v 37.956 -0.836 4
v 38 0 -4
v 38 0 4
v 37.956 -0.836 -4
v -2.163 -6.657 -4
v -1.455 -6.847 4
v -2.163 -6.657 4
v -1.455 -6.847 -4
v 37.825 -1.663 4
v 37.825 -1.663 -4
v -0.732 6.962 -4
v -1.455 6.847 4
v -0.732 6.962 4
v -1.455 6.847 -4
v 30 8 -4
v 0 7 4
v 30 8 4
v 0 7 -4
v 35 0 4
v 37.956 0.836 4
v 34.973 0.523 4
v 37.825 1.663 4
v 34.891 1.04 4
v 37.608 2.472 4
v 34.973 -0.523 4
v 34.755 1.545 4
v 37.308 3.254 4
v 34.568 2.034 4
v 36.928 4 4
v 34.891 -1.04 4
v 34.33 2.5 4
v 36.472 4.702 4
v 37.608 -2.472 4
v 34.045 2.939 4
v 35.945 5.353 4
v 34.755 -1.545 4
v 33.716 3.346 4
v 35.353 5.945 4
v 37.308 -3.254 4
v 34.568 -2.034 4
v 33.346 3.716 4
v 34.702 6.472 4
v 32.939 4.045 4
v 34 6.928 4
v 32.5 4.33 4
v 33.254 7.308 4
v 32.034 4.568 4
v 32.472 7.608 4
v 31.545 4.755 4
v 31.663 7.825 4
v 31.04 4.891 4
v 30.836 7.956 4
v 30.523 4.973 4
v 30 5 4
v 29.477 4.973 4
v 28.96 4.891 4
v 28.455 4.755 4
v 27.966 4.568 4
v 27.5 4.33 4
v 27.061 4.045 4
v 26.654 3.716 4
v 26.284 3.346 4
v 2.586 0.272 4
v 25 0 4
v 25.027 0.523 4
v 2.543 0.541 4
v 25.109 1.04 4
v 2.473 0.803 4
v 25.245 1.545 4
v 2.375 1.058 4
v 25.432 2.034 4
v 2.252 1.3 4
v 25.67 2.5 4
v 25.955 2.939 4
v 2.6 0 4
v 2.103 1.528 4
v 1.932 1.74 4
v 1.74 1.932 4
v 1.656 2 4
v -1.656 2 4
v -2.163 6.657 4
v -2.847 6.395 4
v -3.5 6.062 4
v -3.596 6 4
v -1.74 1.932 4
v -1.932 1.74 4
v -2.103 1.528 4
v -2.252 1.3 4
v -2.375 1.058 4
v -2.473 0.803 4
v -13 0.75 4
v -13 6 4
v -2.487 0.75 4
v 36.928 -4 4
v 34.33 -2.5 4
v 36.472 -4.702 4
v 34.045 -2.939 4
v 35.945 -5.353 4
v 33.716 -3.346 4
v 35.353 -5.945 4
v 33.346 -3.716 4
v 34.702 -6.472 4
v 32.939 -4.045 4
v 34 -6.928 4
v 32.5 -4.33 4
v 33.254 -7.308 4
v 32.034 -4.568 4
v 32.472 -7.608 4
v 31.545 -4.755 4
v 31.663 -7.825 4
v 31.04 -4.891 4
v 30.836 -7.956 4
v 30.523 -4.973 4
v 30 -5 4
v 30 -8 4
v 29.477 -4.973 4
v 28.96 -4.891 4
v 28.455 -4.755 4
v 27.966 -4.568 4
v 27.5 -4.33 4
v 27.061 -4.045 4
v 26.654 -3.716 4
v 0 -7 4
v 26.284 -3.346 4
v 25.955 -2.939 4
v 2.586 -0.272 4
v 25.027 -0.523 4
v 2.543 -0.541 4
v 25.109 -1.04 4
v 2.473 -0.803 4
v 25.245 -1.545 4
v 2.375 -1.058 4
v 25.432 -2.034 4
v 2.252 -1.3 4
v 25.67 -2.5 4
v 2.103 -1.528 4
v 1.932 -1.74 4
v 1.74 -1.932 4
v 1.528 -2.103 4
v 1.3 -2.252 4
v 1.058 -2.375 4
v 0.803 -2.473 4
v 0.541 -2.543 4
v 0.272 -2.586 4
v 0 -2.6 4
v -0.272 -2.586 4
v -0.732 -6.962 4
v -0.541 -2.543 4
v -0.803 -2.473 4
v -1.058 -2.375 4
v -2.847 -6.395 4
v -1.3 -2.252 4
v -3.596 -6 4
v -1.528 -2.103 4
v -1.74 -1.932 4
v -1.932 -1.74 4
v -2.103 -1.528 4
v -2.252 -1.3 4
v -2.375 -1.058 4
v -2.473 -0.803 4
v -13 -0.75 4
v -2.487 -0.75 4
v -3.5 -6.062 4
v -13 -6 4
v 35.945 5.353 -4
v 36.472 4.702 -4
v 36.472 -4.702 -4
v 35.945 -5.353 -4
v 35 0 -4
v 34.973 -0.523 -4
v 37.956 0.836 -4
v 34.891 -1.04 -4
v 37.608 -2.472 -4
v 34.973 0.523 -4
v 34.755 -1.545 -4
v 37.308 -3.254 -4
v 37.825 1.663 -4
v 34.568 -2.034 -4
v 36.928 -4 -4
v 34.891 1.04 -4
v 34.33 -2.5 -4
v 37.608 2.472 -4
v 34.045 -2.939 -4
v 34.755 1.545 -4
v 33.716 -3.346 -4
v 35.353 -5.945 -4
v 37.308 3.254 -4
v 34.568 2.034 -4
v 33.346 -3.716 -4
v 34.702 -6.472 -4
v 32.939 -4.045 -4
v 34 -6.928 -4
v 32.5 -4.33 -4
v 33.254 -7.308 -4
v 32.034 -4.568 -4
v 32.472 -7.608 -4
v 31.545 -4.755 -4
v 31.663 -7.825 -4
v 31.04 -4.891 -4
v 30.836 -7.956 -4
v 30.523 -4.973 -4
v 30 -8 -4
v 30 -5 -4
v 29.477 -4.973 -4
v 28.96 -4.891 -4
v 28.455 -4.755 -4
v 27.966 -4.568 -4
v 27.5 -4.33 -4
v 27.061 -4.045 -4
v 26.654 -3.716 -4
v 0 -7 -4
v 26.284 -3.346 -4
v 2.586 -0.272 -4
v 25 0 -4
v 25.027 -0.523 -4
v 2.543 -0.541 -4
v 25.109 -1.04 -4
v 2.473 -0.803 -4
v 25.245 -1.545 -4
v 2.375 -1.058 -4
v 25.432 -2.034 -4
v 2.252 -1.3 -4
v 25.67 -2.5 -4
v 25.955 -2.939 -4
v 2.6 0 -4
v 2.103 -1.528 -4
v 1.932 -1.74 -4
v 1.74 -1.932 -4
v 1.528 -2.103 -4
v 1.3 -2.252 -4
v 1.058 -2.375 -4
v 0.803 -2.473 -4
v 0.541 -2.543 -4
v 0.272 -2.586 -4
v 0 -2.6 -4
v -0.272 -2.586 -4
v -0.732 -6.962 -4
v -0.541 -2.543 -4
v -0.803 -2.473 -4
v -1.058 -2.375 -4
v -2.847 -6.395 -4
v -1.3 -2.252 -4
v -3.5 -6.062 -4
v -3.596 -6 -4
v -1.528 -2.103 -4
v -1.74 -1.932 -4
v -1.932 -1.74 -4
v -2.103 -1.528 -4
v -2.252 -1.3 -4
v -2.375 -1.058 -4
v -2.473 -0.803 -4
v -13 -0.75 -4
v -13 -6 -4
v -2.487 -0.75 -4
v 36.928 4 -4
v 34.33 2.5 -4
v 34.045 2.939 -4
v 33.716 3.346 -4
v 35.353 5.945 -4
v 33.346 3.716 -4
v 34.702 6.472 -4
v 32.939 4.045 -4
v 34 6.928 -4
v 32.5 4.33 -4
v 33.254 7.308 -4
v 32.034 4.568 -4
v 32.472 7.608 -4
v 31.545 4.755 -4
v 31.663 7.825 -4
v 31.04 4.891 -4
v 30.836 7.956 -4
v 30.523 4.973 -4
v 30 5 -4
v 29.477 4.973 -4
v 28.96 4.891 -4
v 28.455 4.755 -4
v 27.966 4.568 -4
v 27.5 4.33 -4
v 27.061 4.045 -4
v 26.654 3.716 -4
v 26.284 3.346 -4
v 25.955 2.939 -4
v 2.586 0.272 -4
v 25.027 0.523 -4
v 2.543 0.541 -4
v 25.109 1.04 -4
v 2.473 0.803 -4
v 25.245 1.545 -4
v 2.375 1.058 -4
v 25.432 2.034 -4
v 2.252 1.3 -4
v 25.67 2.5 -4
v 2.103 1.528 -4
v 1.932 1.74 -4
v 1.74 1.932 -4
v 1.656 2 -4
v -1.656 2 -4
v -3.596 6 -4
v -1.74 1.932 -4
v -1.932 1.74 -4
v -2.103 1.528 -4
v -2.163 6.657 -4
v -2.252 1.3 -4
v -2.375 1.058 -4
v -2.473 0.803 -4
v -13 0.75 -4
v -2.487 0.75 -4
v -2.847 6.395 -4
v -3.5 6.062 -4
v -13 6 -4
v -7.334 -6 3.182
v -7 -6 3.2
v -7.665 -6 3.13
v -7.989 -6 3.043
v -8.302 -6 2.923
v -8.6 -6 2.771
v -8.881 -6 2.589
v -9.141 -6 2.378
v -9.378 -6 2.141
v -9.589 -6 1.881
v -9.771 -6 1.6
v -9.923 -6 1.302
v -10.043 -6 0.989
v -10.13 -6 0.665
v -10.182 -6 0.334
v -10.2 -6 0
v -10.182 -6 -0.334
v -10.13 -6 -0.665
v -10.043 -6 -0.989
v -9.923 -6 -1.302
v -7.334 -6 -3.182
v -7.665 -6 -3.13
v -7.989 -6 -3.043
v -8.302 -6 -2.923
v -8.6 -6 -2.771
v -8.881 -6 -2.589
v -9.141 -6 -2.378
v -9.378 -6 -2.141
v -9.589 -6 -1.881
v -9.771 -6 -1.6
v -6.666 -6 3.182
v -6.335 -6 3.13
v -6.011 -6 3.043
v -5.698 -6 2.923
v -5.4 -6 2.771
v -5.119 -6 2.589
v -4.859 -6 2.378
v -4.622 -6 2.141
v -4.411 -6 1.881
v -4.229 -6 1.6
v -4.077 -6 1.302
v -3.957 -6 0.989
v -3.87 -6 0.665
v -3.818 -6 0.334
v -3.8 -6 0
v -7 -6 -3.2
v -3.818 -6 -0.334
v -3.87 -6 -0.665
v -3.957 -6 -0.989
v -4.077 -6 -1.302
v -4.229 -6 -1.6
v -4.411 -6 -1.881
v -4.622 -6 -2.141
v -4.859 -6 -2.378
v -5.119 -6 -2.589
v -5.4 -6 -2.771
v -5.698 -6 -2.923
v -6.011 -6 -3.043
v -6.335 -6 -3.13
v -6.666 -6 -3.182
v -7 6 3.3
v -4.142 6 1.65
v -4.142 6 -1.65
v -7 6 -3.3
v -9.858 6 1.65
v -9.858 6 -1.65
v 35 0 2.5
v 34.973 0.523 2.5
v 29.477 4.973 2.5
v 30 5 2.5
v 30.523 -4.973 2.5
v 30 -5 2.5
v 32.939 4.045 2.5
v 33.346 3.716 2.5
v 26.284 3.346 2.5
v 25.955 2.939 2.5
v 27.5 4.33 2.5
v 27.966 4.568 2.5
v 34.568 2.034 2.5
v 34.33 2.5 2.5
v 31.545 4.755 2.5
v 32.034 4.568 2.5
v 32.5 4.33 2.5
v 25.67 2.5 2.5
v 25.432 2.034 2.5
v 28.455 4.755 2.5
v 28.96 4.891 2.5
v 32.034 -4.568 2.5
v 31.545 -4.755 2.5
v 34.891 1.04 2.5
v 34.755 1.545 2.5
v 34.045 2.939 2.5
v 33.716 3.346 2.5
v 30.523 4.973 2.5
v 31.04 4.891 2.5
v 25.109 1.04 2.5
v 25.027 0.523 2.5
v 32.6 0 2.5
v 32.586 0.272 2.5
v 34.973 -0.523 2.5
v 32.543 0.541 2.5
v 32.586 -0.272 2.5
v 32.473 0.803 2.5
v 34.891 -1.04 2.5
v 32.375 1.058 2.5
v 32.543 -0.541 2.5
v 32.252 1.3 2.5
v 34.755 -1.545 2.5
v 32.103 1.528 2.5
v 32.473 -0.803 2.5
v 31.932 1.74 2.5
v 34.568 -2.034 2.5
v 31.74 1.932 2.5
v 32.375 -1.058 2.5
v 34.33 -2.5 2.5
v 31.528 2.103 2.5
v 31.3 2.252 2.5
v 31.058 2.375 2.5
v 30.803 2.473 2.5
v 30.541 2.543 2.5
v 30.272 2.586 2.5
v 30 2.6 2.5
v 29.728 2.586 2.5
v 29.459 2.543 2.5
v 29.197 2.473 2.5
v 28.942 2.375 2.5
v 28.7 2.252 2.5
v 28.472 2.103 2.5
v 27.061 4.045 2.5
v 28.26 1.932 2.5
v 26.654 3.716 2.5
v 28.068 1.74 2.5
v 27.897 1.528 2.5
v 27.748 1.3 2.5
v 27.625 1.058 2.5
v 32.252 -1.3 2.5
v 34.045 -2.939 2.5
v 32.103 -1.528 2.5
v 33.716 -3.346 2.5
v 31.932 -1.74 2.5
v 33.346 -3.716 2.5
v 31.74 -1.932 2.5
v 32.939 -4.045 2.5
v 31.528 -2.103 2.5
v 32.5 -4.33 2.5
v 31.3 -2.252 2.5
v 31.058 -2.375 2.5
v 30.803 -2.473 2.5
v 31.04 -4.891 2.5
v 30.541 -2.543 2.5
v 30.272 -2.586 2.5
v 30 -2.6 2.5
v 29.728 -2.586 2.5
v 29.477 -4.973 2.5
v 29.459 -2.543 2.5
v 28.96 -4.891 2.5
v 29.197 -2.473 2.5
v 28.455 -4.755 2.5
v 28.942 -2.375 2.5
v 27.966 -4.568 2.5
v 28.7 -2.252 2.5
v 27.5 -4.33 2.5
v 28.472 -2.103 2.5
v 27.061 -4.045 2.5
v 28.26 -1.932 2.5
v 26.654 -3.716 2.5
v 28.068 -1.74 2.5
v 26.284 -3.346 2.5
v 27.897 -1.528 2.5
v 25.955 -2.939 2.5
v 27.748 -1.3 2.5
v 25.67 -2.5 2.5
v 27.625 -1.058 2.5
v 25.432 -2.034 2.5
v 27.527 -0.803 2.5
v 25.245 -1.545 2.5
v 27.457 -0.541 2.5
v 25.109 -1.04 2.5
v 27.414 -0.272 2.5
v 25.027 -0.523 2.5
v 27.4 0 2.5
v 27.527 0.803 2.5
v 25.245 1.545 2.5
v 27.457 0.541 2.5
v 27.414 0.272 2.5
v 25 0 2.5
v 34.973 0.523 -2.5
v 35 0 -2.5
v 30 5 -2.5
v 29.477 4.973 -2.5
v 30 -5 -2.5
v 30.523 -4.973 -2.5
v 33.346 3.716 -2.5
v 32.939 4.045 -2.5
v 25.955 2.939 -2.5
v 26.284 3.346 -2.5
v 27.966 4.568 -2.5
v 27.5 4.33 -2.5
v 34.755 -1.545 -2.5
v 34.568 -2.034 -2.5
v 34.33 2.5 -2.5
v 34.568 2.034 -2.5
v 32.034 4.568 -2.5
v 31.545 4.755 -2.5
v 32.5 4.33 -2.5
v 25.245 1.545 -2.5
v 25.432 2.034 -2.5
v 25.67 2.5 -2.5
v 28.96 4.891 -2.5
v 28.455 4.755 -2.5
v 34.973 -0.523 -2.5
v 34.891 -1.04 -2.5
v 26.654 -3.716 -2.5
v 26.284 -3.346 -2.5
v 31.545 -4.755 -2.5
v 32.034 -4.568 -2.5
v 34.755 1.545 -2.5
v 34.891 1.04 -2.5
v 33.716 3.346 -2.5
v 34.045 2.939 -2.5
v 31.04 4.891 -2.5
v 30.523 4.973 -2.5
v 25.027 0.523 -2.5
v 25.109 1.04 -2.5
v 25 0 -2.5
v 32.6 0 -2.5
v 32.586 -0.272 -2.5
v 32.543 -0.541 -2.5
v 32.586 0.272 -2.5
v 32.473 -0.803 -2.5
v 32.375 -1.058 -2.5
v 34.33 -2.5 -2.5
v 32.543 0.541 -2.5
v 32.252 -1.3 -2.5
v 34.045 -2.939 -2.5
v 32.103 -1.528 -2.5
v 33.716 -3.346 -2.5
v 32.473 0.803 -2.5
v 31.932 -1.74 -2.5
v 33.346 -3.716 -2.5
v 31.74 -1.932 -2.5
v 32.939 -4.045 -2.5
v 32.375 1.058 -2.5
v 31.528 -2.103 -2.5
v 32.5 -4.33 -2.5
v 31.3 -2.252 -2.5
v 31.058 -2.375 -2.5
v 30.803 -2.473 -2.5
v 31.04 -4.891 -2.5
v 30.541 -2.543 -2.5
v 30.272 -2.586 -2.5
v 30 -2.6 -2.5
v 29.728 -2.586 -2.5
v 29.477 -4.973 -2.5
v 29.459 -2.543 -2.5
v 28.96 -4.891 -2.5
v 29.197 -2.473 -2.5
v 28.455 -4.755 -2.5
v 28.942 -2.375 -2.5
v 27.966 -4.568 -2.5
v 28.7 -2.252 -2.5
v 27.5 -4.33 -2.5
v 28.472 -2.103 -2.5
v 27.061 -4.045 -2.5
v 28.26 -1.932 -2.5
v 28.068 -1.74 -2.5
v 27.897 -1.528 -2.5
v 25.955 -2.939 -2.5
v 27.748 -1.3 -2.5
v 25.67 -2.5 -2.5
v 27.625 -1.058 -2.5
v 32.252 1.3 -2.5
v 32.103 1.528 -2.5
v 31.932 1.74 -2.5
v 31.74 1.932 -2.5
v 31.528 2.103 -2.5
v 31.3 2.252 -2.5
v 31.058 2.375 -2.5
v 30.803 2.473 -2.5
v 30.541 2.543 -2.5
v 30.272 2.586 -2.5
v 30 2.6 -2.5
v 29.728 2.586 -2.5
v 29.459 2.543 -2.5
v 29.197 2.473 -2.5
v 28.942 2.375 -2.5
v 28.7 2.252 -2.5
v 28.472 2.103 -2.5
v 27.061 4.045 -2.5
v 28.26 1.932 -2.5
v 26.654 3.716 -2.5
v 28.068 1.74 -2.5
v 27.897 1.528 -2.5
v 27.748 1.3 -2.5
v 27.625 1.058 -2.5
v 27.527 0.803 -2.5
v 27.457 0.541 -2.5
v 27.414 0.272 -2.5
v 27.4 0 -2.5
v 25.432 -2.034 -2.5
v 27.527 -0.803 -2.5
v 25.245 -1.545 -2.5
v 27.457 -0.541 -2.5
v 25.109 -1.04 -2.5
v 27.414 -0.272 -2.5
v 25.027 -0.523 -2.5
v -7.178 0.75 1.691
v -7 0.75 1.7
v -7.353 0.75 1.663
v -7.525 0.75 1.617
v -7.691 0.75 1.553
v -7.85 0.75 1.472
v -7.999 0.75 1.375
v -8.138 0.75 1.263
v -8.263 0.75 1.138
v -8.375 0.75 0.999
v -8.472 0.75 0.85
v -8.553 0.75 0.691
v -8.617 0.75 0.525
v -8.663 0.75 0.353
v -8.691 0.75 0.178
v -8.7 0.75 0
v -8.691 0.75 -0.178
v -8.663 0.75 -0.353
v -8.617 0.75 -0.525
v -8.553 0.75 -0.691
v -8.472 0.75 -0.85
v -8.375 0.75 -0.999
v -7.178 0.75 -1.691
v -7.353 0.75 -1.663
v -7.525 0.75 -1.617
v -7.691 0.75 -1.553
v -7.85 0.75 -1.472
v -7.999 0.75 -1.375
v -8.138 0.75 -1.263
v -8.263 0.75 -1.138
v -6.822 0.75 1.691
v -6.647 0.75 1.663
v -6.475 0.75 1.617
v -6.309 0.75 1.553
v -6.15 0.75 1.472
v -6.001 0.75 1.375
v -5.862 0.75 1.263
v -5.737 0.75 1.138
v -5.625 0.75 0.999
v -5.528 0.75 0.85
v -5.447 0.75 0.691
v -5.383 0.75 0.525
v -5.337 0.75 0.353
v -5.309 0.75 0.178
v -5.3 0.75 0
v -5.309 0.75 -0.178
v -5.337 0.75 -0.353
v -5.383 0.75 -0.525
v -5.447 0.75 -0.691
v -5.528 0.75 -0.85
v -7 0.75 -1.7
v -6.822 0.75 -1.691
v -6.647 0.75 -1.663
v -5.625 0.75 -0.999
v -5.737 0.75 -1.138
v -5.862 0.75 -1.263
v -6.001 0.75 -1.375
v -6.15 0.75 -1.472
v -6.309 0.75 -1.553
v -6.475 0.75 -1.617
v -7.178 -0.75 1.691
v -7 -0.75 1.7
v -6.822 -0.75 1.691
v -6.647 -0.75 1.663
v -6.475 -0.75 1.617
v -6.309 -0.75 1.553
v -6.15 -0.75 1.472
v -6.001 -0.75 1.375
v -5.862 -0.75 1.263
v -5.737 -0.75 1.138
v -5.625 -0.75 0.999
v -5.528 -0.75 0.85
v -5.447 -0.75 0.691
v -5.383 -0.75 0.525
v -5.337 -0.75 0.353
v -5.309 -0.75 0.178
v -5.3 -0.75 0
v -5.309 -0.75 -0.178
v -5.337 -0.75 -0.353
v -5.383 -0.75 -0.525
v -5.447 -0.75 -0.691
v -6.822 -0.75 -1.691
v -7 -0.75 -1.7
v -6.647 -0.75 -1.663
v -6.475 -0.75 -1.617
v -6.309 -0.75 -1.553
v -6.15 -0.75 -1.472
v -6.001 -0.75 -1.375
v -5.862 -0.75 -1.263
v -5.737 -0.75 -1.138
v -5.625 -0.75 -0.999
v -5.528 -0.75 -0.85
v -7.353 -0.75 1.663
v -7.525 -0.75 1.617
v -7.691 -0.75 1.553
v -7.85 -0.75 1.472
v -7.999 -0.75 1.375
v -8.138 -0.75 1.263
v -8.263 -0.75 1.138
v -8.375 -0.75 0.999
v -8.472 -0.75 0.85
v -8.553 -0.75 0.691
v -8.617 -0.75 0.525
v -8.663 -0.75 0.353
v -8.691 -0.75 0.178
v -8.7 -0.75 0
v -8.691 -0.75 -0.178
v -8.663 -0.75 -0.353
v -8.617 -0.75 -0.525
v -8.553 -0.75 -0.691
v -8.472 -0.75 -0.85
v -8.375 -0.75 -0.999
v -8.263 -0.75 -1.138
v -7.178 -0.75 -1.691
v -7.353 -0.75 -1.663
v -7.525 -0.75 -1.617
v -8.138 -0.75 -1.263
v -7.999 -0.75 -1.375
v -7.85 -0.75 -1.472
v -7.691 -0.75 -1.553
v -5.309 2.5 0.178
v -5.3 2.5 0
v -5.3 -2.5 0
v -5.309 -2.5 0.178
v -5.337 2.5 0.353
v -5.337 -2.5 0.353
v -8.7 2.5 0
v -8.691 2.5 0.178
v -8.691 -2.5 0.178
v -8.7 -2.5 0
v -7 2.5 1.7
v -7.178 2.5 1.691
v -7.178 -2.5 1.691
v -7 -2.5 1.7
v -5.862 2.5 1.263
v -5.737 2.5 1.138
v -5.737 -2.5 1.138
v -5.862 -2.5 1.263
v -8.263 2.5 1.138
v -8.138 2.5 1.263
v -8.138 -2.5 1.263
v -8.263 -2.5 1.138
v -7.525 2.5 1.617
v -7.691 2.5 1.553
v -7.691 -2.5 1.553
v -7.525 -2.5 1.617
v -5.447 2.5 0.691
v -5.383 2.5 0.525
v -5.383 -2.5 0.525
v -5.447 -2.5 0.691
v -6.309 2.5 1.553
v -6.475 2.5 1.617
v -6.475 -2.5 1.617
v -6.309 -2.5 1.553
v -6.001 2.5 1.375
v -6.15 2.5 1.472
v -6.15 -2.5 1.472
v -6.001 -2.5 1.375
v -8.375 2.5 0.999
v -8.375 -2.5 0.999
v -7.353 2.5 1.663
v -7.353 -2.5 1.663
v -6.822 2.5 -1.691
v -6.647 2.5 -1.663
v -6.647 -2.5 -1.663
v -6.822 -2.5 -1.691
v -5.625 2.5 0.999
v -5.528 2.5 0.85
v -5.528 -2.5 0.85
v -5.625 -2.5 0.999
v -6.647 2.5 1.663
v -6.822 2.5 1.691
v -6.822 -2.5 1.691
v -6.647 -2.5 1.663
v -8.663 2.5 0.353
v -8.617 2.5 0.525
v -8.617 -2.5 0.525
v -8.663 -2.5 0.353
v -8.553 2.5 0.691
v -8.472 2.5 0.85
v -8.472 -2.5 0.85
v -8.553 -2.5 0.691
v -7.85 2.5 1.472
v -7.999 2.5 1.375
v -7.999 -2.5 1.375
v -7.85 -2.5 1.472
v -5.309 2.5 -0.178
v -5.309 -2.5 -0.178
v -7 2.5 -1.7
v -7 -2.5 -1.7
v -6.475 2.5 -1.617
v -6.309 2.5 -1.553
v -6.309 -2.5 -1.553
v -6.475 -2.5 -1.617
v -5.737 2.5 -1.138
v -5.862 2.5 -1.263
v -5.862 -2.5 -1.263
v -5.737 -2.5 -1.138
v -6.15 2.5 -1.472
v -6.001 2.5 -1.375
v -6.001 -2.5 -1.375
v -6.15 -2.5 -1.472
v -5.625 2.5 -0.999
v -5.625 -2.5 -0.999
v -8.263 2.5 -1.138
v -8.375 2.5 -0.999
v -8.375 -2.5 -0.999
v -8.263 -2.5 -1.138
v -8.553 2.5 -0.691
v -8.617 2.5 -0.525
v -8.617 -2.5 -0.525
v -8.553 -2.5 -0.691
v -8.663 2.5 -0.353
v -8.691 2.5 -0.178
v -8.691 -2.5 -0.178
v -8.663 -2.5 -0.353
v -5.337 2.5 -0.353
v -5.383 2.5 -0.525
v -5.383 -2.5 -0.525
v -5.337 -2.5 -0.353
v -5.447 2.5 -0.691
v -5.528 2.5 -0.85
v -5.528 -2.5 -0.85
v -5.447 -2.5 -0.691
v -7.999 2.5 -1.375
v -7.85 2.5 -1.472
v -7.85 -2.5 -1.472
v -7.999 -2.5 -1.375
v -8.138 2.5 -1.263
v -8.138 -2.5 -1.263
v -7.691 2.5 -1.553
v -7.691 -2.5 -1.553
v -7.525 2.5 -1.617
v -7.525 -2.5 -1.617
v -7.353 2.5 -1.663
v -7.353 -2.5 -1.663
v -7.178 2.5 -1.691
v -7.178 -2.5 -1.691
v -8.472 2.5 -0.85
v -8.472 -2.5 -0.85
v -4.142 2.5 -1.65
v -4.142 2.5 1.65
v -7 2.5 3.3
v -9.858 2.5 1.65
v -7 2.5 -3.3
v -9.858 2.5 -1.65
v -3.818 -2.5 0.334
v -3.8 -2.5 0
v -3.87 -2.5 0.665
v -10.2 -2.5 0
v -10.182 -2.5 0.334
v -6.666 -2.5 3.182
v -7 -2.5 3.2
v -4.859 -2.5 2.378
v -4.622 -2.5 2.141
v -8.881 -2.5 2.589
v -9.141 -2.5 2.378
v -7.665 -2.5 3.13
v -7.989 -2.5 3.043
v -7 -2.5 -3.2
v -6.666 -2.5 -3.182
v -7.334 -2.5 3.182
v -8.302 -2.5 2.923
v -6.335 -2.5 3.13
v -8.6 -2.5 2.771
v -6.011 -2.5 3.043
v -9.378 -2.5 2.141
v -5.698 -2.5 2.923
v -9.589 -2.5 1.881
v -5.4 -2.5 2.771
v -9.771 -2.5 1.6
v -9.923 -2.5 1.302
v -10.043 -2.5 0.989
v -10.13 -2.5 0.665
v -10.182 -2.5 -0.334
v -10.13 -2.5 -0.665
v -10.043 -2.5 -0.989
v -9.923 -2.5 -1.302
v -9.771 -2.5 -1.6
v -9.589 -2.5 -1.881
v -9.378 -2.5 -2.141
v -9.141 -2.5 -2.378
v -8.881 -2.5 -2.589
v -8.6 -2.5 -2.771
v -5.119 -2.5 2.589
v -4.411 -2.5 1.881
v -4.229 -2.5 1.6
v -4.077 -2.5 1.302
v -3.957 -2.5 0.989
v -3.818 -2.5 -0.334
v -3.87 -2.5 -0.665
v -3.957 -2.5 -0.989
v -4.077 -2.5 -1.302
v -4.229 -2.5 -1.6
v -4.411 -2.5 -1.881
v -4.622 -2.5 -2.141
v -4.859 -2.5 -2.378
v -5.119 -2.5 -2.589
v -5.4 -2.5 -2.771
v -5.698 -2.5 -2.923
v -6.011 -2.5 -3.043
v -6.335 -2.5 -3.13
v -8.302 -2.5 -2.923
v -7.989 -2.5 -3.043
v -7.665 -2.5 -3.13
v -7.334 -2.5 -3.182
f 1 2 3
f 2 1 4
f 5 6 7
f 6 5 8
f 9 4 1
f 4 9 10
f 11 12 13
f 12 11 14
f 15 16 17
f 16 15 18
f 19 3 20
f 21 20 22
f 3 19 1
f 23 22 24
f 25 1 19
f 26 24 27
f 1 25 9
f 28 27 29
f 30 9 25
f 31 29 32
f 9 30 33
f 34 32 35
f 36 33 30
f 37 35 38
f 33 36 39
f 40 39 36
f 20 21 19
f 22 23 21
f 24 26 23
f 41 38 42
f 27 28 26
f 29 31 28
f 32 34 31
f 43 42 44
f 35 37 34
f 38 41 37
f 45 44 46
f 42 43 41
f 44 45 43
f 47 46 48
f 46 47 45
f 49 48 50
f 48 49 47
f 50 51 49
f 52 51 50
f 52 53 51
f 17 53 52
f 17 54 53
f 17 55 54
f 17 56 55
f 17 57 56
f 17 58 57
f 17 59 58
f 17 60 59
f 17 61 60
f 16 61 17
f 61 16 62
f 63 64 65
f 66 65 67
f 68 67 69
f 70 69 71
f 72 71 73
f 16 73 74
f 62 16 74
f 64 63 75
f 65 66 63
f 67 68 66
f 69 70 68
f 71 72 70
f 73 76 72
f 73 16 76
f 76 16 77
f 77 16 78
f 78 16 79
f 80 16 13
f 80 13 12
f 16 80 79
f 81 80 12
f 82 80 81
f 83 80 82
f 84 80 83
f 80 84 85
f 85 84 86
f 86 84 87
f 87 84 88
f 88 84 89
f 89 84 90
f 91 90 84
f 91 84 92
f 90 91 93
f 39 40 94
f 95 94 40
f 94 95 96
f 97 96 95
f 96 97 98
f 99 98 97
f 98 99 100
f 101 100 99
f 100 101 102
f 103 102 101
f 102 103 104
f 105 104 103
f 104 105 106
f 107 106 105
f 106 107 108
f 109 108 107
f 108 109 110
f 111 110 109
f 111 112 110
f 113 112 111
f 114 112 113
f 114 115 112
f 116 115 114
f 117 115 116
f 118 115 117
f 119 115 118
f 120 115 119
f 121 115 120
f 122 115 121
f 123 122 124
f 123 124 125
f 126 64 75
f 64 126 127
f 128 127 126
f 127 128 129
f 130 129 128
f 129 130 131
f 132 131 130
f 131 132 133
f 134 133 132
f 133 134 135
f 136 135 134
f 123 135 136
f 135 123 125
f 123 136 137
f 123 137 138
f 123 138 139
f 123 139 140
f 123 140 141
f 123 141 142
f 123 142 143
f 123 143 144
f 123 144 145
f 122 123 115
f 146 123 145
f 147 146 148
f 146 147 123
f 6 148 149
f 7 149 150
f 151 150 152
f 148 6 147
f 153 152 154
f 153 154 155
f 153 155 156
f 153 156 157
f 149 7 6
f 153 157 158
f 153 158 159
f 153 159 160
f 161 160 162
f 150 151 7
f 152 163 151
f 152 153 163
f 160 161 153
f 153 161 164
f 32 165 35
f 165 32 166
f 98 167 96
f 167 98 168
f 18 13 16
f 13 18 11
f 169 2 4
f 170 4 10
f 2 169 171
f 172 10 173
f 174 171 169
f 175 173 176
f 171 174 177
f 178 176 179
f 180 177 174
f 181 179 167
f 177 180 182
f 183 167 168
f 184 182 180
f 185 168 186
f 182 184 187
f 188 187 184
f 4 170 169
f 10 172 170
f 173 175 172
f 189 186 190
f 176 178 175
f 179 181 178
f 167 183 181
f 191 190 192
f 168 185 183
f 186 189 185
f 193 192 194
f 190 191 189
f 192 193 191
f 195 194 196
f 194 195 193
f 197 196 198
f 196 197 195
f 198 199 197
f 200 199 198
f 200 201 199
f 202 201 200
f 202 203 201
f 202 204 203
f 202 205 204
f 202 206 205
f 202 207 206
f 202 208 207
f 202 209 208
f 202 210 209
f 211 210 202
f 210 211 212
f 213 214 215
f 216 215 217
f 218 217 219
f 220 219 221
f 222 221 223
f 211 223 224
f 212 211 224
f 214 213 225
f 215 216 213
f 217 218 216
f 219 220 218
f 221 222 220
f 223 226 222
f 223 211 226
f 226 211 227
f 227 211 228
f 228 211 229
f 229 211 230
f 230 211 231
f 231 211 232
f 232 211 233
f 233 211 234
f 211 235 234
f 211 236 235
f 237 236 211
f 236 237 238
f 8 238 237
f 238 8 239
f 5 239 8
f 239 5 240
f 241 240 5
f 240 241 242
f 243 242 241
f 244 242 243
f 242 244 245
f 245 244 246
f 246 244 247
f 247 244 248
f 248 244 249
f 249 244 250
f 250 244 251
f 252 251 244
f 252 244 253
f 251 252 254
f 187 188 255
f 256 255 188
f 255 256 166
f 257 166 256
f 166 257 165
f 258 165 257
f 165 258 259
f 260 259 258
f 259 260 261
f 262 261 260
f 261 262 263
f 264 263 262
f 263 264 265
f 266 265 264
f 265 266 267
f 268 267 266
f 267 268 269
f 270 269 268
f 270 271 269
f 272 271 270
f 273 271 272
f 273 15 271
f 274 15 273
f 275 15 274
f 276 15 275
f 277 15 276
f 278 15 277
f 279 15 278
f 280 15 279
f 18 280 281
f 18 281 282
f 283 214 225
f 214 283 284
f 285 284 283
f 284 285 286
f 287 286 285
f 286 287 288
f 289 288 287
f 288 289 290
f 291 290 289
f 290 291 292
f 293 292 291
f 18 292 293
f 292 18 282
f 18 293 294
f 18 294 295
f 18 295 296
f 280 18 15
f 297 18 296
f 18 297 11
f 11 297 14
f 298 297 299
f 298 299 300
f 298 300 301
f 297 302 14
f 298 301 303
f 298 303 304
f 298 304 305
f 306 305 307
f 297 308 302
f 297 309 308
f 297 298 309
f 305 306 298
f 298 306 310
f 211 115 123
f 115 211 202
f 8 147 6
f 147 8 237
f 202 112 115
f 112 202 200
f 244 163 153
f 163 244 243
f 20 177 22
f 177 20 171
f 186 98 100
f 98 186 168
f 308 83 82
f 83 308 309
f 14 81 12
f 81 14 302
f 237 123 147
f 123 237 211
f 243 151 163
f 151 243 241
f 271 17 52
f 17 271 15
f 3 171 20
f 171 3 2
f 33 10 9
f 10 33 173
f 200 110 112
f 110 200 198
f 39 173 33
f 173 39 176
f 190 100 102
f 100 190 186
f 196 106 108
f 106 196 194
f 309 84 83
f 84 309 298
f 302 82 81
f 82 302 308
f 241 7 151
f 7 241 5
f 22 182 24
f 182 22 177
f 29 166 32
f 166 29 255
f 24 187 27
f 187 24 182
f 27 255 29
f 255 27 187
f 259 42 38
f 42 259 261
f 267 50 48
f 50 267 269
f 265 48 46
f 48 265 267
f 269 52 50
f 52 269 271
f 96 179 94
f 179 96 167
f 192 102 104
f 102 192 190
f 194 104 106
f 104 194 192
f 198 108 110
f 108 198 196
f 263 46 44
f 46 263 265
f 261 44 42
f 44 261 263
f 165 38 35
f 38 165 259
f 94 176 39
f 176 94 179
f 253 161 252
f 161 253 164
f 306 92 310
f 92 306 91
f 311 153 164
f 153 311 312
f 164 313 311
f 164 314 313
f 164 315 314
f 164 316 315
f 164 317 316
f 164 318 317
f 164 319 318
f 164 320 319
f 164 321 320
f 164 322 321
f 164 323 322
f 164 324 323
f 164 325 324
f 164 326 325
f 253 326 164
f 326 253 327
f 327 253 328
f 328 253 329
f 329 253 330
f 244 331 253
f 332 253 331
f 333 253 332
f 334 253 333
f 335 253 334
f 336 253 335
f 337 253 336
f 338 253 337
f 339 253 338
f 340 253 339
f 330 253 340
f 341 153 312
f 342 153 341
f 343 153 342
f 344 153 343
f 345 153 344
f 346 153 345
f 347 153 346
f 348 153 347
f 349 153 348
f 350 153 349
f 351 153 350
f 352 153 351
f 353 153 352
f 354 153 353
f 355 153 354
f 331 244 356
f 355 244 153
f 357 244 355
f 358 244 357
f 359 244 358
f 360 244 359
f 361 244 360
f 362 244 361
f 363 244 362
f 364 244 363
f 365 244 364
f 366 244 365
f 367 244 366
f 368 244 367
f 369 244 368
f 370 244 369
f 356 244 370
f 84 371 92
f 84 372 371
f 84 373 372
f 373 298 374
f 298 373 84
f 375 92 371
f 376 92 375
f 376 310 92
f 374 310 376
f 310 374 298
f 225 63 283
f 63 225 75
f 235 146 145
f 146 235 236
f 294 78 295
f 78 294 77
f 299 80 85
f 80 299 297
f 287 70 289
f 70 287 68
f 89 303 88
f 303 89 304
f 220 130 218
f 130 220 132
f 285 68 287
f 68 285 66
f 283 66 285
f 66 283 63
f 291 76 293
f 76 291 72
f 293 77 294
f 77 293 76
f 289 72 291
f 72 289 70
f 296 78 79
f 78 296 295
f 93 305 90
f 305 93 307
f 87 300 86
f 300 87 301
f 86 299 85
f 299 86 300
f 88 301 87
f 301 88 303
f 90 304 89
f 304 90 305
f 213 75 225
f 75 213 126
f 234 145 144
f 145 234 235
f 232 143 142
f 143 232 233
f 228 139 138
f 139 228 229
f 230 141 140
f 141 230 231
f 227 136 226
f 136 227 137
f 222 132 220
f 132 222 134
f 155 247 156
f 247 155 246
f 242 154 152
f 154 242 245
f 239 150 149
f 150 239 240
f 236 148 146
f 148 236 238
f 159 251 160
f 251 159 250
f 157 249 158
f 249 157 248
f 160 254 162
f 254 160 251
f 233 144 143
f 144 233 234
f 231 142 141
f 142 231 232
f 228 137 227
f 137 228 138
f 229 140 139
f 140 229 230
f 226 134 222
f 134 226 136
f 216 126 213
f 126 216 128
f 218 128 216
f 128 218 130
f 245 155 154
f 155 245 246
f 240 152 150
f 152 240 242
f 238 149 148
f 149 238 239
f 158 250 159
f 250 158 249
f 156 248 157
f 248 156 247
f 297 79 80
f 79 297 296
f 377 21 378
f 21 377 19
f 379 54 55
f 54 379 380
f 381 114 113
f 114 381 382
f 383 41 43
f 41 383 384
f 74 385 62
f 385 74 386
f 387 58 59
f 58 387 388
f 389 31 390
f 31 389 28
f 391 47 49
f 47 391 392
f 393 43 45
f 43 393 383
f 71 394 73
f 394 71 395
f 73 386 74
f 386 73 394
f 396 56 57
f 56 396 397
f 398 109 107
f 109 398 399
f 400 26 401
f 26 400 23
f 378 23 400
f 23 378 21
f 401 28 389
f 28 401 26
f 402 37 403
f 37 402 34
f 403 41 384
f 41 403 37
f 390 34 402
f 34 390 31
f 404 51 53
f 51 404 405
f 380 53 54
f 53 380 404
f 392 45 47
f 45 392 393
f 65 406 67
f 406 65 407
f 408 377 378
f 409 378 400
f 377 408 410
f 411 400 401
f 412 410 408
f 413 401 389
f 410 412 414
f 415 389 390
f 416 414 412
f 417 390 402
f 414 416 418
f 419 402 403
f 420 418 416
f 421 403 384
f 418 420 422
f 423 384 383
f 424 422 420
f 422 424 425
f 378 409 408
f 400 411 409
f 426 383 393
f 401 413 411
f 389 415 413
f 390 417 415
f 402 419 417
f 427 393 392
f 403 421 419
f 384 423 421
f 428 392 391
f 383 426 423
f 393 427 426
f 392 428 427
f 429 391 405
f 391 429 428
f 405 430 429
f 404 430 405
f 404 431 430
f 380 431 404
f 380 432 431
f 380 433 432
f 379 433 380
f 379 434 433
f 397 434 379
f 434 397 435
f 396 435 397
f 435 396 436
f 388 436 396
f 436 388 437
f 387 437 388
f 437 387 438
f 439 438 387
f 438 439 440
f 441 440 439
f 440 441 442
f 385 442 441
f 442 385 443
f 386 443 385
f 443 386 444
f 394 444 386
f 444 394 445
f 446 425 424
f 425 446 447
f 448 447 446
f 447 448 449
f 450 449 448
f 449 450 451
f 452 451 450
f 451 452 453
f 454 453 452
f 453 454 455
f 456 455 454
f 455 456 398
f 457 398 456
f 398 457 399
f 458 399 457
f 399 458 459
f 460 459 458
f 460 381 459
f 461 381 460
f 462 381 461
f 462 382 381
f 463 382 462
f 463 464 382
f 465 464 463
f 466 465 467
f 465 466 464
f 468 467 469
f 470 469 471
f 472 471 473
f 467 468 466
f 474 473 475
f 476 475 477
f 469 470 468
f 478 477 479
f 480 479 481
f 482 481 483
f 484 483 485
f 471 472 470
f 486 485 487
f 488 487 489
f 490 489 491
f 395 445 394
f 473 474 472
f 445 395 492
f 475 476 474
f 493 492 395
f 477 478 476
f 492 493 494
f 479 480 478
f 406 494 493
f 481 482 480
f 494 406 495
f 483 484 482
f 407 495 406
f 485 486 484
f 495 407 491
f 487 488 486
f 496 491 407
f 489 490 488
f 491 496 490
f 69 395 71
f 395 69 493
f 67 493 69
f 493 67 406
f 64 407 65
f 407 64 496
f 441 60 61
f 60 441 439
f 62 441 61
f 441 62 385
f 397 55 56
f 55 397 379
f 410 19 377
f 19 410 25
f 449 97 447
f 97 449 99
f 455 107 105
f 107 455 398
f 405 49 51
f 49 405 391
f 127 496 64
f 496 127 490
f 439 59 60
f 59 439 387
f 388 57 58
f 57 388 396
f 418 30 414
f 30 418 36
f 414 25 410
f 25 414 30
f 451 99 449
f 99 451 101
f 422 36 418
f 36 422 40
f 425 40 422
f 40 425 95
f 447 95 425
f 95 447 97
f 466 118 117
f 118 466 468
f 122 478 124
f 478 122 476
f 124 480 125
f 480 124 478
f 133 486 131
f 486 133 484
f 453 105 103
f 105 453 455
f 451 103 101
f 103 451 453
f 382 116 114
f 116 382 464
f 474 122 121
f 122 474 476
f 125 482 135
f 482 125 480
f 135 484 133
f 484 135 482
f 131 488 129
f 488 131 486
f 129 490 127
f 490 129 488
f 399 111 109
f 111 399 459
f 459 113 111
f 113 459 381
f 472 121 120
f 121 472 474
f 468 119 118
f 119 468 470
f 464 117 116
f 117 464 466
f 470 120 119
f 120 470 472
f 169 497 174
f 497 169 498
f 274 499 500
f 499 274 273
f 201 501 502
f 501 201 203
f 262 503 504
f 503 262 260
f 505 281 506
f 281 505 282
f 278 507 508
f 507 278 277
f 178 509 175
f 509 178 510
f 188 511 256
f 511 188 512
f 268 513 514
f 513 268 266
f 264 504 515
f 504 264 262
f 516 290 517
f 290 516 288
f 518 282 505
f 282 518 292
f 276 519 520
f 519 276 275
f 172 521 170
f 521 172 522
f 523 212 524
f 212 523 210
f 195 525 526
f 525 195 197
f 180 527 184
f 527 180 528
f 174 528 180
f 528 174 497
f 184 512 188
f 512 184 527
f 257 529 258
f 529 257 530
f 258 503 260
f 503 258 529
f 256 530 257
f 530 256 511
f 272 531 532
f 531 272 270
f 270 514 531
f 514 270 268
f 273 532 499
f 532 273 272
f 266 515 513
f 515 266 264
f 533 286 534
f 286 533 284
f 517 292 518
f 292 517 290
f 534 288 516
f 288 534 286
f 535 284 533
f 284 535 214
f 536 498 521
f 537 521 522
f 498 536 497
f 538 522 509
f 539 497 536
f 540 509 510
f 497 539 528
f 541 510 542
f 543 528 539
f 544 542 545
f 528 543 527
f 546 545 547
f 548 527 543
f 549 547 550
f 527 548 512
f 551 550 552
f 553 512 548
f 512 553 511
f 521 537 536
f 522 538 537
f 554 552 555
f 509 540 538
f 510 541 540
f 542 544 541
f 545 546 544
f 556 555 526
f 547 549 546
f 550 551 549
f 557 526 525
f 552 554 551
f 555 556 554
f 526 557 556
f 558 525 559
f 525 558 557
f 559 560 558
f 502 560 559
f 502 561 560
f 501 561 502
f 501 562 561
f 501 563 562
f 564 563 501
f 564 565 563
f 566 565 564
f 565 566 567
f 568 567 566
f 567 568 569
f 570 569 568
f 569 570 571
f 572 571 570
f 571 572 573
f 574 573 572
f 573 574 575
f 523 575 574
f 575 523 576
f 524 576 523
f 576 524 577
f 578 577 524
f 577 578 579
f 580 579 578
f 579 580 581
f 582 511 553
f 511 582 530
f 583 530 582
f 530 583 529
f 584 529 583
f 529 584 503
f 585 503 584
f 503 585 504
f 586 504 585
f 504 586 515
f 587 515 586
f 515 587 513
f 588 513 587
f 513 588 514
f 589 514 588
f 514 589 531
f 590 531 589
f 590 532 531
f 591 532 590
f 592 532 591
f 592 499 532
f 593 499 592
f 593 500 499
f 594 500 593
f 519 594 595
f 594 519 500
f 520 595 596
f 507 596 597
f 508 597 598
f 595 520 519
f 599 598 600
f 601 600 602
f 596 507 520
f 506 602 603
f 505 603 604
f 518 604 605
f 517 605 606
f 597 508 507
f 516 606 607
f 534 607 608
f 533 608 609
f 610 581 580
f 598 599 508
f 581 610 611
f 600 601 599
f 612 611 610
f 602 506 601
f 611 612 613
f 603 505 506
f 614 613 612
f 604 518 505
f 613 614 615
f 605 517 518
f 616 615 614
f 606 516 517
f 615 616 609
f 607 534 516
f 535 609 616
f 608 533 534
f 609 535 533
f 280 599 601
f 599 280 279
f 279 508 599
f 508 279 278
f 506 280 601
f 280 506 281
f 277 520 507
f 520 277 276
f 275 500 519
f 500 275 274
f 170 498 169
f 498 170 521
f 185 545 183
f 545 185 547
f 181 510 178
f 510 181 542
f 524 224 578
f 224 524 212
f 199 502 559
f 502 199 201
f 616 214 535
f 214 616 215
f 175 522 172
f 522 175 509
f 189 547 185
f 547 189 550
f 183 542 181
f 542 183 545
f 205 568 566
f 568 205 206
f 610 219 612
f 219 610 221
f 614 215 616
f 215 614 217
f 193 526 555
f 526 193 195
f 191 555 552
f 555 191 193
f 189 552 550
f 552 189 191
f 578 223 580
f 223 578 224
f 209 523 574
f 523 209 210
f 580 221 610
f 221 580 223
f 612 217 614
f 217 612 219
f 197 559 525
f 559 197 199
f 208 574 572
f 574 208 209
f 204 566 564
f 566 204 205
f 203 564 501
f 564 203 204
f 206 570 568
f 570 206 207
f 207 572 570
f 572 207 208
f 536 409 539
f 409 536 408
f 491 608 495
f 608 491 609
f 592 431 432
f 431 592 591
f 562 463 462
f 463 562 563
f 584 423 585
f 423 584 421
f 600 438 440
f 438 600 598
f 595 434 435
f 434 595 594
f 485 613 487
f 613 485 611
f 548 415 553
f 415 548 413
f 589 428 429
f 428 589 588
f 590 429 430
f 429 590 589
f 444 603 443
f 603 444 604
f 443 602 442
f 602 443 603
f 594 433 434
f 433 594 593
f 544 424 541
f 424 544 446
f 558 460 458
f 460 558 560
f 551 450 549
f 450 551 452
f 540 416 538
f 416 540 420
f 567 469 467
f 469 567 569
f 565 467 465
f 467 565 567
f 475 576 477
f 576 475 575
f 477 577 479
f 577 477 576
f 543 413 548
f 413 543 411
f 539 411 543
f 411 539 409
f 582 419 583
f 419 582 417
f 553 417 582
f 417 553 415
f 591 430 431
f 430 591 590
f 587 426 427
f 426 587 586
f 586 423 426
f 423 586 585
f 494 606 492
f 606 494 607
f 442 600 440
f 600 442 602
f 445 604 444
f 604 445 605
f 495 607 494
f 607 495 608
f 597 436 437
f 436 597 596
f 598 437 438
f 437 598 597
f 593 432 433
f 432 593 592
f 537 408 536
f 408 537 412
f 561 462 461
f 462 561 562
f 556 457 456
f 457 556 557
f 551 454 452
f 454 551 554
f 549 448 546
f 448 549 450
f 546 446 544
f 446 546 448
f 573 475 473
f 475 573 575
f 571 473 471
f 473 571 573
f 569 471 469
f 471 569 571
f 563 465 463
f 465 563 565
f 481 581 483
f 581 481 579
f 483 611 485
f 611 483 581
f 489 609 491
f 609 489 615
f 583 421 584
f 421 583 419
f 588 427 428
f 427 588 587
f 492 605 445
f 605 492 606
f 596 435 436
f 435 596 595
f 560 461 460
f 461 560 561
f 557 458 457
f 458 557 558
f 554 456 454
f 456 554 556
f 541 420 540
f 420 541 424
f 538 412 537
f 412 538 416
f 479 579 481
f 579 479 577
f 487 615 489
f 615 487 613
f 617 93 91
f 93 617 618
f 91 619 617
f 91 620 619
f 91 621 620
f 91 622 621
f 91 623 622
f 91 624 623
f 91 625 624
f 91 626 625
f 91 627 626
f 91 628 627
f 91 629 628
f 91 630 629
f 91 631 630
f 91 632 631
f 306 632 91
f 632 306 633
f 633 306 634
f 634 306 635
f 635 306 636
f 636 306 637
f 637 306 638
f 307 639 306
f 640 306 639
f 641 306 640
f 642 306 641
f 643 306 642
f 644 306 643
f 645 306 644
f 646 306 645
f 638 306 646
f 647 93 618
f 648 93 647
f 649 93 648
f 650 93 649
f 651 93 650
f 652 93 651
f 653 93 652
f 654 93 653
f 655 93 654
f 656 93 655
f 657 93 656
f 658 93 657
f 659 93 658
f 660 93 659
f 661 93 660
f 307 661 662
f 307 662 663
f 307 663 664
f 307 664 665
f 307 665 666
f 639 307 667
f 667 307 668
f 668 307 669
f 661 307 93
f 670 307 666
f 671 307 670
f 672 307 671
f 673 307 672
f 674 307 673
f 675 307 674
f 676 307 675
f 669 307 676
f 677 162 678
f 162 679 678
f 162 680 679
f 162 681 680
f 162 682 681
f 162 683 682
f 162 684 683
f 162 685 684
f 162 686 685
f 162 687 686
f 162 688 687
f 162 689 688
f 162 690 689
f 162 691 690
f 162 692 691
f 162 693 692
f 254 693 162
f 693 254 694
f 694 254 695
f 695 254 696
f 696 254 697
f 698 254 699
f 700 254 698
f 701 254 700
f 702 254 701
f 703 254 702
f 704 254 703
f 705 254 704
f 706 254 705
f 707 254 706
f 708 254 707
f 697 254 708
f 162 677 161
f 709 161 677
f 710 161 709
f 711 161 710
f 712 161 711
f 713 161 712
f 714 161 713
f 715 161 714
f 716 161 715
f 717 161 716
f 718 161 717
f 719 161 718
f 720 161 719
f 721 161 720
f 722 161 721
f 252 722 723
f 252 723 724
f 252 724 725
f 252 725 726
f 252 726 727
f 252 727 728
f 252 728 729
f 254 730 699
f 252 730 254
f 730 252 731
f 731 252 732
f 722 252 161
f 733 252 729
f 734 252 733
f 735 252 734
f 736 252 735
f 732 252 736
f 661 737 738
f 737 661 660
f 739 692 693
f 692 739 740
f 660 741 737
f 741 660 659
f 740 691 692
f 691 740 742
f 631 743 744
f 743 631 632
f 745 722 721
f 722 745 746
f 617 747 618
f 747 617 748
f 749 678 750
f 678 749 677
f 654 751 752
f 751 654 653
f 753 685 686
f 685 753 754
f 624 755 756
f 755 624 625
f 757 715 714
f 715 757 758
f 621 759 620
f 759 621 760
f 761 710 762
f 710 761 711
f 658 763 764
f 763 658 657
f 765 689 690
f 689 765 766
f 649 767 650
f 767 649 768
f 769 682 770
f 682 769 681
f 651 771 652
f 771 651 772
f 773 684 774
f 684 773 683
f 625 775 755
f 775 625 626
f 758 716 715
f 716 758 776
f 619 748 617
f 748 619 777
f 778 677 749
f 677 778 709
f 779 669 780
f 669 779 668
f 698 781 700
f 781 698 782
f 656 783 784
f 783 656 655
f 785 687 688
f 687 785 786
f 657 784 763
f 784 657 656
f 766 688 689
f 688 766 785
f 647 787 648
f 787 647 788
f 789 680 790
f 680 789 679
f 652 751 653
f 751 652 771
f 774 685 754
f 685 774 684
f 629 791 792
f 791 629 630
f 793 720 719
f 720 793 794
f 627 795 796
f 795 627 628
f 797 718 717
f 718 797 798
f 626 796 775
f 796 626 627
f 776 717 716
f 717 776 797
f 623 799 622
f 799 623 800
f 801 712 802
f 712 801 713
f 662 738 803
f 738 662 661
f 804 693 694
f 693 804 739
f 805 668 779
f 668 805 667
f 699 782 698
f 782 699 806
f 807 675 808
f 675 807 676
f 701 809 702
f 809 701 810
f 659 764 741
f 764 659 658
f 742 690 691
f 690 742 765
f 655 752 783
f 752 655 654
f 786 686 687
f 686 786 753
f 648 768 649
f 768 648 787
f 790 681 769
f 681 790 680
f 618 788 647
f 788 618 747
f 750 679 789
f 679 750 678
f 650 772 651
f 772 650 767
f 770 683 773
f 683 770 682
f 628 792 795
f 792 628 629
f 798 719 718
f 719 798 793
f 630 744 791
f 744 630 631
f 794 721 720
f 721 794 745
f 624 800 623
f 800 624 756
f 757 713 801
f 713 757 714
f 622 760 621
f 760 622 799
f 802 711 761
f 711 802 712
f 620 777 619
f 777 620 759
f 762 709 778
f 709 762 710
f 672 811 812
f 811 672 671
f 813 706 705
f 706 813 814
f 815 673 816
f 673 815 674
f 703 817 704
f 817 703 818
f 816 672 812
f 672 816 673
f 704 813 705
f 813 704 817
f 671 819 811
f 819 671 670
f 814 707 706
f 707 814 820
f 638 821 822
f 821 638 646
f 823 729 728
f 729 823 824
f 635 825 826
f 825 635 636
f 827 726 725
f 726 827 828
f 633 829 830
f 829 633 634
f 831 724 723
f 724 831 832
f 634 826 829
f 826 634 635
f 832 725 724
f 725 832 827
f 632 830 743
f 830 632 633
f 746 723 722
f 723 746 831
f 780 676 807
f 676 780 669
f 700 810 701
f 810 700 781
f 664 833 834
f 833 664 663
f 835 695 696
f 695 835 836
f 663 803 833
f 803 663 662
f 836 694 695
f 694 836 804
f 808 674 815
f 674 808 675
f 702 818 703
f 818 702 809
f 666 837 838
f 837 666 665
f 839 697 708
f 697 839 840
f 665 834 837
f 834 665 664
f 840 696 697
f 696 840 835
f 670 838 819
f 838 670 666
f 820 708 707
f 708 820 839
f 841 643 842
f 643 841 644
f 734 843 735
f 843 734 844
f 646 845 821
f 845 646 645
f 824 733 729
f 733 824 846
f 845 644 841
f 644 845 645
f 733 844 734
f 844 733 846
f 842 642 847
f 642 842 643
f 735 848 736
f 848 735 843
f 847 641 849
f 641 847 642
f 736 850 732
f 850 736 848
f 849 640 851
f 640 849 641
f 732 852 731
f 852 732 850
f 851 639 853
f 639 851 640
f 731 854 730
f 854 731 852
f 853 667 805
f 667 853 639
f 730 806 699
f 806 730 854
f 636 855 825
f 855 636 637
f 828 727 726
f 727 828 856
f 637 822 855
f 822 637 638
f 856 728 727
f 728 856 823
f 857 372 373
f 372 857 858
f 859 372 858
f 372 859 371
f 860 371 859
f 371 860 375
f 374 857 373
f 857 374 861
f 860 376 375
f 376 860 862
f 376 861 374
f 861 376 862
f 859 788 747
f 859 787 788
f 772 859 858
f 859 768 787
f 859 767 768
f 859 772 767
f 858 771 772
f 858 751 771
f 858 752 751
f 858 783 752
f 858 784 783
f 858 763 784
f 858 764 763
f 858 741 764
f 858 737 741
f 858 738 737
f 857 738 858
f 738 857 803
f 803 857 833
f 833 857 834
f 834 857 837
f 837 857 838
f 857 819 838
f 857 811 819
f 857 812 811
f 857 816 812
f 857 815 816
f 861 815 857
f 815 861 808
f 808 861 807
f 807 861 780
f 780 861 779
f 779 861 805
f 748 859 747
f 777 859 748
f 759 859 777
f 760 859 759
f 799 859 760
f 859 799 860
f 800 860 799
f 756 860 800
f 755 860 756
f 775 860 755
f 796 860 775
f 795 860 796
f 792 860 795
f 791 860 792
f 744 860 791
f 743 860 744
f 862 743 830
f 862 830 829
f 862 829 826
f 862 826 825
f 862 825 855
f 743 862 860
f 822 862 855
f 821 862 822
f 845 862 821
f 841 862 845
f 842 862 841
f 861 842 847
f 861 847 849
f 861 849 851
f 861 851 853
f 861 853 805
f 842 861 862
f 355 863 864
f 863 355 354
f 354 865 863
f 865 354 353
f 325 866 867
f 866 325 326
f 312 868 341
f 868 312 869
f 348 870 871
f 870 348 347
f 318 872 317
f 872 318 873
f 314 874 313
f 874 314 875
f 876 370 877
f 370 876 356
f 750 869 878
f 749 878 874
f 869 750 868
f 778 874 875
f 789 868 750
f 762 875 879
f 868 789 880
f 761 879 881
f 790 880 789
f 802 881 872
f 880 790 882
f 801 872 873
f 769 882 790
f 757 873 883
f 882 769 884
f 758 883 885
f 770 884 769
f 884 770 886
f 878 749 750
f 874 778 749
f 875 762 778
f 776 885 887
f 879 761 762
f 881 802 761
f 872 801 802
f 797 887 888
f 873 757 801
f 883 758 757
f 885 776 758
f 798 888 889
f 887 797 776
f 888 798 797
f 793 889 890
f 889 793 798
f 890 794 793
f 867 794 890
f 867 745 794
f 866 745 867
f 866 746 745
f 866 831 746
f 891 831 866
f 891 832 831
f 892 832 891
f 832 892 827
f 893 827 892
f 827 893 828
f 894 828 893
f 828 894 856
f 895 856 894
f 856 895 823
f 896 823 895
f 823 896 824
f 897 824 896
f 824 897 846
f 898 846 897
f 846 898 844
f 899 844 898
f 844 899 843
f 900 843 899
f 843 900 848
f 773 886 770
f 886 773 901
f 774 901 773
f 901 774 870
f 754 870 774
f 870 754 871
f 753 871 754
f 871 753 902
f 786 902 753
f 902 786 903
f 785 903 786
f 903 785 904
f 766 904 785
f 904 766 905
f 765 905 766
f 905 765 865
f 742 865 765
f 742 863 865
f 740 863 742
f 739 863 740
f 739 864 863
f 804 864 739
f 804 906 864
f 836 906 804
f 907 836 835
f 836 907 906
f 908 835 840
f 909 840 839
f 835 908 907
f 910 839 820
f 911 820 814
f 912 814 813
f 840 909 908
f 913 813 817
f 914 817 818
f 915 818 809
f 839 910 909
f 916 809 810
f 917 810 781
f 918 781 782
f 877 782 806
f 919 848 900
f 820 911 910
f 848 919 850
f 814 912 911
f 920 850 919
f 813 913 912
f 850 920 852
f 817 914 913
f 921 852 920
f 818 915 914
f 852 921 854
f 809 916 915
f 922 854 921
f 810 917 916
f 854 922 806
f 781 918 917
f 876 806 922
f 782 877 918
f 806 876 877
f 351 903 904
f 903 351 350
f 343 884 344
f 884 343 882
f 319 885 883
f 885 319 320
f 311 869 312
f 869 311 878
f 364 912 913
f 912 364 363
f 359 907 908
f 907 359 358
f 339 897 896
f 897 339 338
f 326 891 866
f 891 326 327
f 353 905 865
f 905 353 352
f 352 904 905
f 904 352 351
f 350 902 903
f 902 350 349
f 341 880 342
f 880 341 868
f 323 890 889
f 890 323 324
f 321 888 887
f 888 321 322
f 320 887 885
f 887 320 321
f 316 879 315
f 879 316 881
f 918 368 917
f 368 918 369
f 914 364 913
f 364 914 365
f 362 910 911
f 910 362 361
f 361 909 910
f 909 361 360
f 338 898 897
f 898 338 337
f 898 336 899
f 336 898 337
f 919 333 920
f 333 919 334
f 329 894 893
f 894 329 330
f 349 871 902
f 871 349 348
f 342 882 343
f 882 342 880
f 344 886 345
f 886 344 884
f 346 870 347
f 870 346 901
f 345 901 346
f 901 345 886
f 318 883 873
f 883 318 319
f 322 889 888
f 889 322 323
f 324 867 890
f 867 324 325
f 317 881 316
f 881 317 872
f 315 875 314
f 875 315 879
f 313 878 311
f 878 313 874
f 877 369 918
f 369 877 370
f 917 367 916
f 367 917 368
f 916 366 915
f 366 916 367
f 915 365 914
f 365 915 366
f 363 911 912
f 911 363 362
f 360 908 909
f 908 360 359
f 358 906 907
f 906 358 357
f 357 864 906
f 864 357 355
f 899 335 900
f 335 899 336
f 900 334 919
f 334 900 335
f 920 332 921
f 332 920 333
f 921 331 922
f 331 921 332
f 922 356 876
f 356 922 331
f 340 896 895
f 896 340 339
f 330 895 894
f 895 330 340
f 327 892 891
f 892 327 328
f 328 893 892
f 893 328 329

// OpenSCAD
module motor_horn(){

$fn = 60;

// --- User Parameters ---
throw_length = 30.0;       // Distance from motor shaft center to the rod-end hole
horn_thickness = 8.0;      // Thickness everywhere EXCEPT the local hole recess
hub_dia = 14.0;            // Outer diameter of the central hub
arm_width = 16.0;          // Width of the arm (slightly wider than the hub for a clean blend)
shaft_dia = 5.2;           // 5mm motor shaft + 0.2mm 3D printing tolerance
flat_depth = 0.6;          // Depth of the NEMA 17 D-shaft flat
m3_clearance = 1.7;        // 3.4mm diameter for M3 clamping bolt
m5_clearance = 2.6;        // 5.2mm diameter for the M5 rod-end hole
arm_end_margin = 0.0;      // Extra material past the M5 hole, so it doesn't
                           // break out through the tip edge

// Local recess around the hole, to match the ball-stud's short thread length
hole_depth = 5.0;          // target material thickness right at the hole
pocket_dia = 10.0;         // diameter of the recessed pad around the hole
pocket_cut = (horn_thickness - hole_depth) / 2;
hex_nut_across_flats = 8.3; // M5 nut, 8mm nominal + slight clearance
hex_nut_r = hex_nut_across_flats / 1.732;
hex_nut_depth = pocket_cut; // = 1.5mm here - see note above before changing

// --- Cutout Modules ---
module d_shaft_cutout() {
    difference() {
        cylinder(r=shaft_dia/2, h=horn_thickness + 2, center=true);
        translate([0, (shaft_dia/2) - flat_depth + 2.5, 0])
            cube([shaft_dia+2, 5, horn_thickness + 4], center=true);
    }
}

arm_length = throw_length + arm_end_margin;

// --- Main Horn Geometry ---
difference() {
    union() {
        // Hub + arm, one continuous full-thickness hull - no taper stages
        hull() {
            cylinder(r=hub_dia/2, h=horn_thickness, center=true);
            translate([arm_length, 0, 0])
                cylinder(r=arm_width/2, h=horn_thickness, center=true);
        }

        // Clamping block (unchanged from the original design)
        translate([-7, 0, 0])
            cube([12, 12, horn_thickness], center=true);
    }

    // Motor shaft
    d_shaft_cutout();

    // Local recess around the rod-end hole, cut into BOTH faces symmetrically -
    // leaves a hole_depth-thick pad right at the hole, full thickness everywhere
    // else on the arm.
    translate([throw_length, 0, horn_thickness/2 - pocket_cut])
        cylinder(r=pocket_dia/2, h=pocket_cut + 0.5);
    translate([throw_length, 0, -horn_thickness/2 - 0.5])
        cylinder(r=pocket_dia/2, h=pocket_cut + 0.5);

    // Hex nut trap, nested inside the nut-side (bottom) pocket above - deeper
    // than the round pocket but only across the hex footprint, not the whole
    // pocket area, so it stays a small, contained feature
    translate([throw_length, 0, -horn_thickness/2 - 0.01])
        cylinder(r=hex_nut_r, h=hex_nut_depth, $fn=6);

    // Rod-end hole itself, now only as deep as hole_depth requires
    translate([throw_length, 0, 0])
        cylinder(r=m5_clearance, h=horn_thickness + 2, center=true);

    // Clamping slit (allows the plastic to flex and grip the shaft)
    translate([-10, 0, 0])
        cube([20, 1.5, horn_thickness + 2], center=true);

    // Clamping bolt hole (passes perpendicularly through the slit)
    translate([-7, 0, 0])
        rotate([90, 0, 0])
        cylinder(r=m3_clearance, h=20, center=true);

    // M3 hex nut trap
    translate([-7, 4.5, 0])
        rotate([90, 30, 0])
        cylinder(r=3.3, h=4, $fn=6, center=true);

    // Bolt head recess
    translate([-7, -4.5, 0])
        rotate([90, 0, 0])
        cylinder(r=3.2, h=4, center=true);
}
}

motor_horn();
